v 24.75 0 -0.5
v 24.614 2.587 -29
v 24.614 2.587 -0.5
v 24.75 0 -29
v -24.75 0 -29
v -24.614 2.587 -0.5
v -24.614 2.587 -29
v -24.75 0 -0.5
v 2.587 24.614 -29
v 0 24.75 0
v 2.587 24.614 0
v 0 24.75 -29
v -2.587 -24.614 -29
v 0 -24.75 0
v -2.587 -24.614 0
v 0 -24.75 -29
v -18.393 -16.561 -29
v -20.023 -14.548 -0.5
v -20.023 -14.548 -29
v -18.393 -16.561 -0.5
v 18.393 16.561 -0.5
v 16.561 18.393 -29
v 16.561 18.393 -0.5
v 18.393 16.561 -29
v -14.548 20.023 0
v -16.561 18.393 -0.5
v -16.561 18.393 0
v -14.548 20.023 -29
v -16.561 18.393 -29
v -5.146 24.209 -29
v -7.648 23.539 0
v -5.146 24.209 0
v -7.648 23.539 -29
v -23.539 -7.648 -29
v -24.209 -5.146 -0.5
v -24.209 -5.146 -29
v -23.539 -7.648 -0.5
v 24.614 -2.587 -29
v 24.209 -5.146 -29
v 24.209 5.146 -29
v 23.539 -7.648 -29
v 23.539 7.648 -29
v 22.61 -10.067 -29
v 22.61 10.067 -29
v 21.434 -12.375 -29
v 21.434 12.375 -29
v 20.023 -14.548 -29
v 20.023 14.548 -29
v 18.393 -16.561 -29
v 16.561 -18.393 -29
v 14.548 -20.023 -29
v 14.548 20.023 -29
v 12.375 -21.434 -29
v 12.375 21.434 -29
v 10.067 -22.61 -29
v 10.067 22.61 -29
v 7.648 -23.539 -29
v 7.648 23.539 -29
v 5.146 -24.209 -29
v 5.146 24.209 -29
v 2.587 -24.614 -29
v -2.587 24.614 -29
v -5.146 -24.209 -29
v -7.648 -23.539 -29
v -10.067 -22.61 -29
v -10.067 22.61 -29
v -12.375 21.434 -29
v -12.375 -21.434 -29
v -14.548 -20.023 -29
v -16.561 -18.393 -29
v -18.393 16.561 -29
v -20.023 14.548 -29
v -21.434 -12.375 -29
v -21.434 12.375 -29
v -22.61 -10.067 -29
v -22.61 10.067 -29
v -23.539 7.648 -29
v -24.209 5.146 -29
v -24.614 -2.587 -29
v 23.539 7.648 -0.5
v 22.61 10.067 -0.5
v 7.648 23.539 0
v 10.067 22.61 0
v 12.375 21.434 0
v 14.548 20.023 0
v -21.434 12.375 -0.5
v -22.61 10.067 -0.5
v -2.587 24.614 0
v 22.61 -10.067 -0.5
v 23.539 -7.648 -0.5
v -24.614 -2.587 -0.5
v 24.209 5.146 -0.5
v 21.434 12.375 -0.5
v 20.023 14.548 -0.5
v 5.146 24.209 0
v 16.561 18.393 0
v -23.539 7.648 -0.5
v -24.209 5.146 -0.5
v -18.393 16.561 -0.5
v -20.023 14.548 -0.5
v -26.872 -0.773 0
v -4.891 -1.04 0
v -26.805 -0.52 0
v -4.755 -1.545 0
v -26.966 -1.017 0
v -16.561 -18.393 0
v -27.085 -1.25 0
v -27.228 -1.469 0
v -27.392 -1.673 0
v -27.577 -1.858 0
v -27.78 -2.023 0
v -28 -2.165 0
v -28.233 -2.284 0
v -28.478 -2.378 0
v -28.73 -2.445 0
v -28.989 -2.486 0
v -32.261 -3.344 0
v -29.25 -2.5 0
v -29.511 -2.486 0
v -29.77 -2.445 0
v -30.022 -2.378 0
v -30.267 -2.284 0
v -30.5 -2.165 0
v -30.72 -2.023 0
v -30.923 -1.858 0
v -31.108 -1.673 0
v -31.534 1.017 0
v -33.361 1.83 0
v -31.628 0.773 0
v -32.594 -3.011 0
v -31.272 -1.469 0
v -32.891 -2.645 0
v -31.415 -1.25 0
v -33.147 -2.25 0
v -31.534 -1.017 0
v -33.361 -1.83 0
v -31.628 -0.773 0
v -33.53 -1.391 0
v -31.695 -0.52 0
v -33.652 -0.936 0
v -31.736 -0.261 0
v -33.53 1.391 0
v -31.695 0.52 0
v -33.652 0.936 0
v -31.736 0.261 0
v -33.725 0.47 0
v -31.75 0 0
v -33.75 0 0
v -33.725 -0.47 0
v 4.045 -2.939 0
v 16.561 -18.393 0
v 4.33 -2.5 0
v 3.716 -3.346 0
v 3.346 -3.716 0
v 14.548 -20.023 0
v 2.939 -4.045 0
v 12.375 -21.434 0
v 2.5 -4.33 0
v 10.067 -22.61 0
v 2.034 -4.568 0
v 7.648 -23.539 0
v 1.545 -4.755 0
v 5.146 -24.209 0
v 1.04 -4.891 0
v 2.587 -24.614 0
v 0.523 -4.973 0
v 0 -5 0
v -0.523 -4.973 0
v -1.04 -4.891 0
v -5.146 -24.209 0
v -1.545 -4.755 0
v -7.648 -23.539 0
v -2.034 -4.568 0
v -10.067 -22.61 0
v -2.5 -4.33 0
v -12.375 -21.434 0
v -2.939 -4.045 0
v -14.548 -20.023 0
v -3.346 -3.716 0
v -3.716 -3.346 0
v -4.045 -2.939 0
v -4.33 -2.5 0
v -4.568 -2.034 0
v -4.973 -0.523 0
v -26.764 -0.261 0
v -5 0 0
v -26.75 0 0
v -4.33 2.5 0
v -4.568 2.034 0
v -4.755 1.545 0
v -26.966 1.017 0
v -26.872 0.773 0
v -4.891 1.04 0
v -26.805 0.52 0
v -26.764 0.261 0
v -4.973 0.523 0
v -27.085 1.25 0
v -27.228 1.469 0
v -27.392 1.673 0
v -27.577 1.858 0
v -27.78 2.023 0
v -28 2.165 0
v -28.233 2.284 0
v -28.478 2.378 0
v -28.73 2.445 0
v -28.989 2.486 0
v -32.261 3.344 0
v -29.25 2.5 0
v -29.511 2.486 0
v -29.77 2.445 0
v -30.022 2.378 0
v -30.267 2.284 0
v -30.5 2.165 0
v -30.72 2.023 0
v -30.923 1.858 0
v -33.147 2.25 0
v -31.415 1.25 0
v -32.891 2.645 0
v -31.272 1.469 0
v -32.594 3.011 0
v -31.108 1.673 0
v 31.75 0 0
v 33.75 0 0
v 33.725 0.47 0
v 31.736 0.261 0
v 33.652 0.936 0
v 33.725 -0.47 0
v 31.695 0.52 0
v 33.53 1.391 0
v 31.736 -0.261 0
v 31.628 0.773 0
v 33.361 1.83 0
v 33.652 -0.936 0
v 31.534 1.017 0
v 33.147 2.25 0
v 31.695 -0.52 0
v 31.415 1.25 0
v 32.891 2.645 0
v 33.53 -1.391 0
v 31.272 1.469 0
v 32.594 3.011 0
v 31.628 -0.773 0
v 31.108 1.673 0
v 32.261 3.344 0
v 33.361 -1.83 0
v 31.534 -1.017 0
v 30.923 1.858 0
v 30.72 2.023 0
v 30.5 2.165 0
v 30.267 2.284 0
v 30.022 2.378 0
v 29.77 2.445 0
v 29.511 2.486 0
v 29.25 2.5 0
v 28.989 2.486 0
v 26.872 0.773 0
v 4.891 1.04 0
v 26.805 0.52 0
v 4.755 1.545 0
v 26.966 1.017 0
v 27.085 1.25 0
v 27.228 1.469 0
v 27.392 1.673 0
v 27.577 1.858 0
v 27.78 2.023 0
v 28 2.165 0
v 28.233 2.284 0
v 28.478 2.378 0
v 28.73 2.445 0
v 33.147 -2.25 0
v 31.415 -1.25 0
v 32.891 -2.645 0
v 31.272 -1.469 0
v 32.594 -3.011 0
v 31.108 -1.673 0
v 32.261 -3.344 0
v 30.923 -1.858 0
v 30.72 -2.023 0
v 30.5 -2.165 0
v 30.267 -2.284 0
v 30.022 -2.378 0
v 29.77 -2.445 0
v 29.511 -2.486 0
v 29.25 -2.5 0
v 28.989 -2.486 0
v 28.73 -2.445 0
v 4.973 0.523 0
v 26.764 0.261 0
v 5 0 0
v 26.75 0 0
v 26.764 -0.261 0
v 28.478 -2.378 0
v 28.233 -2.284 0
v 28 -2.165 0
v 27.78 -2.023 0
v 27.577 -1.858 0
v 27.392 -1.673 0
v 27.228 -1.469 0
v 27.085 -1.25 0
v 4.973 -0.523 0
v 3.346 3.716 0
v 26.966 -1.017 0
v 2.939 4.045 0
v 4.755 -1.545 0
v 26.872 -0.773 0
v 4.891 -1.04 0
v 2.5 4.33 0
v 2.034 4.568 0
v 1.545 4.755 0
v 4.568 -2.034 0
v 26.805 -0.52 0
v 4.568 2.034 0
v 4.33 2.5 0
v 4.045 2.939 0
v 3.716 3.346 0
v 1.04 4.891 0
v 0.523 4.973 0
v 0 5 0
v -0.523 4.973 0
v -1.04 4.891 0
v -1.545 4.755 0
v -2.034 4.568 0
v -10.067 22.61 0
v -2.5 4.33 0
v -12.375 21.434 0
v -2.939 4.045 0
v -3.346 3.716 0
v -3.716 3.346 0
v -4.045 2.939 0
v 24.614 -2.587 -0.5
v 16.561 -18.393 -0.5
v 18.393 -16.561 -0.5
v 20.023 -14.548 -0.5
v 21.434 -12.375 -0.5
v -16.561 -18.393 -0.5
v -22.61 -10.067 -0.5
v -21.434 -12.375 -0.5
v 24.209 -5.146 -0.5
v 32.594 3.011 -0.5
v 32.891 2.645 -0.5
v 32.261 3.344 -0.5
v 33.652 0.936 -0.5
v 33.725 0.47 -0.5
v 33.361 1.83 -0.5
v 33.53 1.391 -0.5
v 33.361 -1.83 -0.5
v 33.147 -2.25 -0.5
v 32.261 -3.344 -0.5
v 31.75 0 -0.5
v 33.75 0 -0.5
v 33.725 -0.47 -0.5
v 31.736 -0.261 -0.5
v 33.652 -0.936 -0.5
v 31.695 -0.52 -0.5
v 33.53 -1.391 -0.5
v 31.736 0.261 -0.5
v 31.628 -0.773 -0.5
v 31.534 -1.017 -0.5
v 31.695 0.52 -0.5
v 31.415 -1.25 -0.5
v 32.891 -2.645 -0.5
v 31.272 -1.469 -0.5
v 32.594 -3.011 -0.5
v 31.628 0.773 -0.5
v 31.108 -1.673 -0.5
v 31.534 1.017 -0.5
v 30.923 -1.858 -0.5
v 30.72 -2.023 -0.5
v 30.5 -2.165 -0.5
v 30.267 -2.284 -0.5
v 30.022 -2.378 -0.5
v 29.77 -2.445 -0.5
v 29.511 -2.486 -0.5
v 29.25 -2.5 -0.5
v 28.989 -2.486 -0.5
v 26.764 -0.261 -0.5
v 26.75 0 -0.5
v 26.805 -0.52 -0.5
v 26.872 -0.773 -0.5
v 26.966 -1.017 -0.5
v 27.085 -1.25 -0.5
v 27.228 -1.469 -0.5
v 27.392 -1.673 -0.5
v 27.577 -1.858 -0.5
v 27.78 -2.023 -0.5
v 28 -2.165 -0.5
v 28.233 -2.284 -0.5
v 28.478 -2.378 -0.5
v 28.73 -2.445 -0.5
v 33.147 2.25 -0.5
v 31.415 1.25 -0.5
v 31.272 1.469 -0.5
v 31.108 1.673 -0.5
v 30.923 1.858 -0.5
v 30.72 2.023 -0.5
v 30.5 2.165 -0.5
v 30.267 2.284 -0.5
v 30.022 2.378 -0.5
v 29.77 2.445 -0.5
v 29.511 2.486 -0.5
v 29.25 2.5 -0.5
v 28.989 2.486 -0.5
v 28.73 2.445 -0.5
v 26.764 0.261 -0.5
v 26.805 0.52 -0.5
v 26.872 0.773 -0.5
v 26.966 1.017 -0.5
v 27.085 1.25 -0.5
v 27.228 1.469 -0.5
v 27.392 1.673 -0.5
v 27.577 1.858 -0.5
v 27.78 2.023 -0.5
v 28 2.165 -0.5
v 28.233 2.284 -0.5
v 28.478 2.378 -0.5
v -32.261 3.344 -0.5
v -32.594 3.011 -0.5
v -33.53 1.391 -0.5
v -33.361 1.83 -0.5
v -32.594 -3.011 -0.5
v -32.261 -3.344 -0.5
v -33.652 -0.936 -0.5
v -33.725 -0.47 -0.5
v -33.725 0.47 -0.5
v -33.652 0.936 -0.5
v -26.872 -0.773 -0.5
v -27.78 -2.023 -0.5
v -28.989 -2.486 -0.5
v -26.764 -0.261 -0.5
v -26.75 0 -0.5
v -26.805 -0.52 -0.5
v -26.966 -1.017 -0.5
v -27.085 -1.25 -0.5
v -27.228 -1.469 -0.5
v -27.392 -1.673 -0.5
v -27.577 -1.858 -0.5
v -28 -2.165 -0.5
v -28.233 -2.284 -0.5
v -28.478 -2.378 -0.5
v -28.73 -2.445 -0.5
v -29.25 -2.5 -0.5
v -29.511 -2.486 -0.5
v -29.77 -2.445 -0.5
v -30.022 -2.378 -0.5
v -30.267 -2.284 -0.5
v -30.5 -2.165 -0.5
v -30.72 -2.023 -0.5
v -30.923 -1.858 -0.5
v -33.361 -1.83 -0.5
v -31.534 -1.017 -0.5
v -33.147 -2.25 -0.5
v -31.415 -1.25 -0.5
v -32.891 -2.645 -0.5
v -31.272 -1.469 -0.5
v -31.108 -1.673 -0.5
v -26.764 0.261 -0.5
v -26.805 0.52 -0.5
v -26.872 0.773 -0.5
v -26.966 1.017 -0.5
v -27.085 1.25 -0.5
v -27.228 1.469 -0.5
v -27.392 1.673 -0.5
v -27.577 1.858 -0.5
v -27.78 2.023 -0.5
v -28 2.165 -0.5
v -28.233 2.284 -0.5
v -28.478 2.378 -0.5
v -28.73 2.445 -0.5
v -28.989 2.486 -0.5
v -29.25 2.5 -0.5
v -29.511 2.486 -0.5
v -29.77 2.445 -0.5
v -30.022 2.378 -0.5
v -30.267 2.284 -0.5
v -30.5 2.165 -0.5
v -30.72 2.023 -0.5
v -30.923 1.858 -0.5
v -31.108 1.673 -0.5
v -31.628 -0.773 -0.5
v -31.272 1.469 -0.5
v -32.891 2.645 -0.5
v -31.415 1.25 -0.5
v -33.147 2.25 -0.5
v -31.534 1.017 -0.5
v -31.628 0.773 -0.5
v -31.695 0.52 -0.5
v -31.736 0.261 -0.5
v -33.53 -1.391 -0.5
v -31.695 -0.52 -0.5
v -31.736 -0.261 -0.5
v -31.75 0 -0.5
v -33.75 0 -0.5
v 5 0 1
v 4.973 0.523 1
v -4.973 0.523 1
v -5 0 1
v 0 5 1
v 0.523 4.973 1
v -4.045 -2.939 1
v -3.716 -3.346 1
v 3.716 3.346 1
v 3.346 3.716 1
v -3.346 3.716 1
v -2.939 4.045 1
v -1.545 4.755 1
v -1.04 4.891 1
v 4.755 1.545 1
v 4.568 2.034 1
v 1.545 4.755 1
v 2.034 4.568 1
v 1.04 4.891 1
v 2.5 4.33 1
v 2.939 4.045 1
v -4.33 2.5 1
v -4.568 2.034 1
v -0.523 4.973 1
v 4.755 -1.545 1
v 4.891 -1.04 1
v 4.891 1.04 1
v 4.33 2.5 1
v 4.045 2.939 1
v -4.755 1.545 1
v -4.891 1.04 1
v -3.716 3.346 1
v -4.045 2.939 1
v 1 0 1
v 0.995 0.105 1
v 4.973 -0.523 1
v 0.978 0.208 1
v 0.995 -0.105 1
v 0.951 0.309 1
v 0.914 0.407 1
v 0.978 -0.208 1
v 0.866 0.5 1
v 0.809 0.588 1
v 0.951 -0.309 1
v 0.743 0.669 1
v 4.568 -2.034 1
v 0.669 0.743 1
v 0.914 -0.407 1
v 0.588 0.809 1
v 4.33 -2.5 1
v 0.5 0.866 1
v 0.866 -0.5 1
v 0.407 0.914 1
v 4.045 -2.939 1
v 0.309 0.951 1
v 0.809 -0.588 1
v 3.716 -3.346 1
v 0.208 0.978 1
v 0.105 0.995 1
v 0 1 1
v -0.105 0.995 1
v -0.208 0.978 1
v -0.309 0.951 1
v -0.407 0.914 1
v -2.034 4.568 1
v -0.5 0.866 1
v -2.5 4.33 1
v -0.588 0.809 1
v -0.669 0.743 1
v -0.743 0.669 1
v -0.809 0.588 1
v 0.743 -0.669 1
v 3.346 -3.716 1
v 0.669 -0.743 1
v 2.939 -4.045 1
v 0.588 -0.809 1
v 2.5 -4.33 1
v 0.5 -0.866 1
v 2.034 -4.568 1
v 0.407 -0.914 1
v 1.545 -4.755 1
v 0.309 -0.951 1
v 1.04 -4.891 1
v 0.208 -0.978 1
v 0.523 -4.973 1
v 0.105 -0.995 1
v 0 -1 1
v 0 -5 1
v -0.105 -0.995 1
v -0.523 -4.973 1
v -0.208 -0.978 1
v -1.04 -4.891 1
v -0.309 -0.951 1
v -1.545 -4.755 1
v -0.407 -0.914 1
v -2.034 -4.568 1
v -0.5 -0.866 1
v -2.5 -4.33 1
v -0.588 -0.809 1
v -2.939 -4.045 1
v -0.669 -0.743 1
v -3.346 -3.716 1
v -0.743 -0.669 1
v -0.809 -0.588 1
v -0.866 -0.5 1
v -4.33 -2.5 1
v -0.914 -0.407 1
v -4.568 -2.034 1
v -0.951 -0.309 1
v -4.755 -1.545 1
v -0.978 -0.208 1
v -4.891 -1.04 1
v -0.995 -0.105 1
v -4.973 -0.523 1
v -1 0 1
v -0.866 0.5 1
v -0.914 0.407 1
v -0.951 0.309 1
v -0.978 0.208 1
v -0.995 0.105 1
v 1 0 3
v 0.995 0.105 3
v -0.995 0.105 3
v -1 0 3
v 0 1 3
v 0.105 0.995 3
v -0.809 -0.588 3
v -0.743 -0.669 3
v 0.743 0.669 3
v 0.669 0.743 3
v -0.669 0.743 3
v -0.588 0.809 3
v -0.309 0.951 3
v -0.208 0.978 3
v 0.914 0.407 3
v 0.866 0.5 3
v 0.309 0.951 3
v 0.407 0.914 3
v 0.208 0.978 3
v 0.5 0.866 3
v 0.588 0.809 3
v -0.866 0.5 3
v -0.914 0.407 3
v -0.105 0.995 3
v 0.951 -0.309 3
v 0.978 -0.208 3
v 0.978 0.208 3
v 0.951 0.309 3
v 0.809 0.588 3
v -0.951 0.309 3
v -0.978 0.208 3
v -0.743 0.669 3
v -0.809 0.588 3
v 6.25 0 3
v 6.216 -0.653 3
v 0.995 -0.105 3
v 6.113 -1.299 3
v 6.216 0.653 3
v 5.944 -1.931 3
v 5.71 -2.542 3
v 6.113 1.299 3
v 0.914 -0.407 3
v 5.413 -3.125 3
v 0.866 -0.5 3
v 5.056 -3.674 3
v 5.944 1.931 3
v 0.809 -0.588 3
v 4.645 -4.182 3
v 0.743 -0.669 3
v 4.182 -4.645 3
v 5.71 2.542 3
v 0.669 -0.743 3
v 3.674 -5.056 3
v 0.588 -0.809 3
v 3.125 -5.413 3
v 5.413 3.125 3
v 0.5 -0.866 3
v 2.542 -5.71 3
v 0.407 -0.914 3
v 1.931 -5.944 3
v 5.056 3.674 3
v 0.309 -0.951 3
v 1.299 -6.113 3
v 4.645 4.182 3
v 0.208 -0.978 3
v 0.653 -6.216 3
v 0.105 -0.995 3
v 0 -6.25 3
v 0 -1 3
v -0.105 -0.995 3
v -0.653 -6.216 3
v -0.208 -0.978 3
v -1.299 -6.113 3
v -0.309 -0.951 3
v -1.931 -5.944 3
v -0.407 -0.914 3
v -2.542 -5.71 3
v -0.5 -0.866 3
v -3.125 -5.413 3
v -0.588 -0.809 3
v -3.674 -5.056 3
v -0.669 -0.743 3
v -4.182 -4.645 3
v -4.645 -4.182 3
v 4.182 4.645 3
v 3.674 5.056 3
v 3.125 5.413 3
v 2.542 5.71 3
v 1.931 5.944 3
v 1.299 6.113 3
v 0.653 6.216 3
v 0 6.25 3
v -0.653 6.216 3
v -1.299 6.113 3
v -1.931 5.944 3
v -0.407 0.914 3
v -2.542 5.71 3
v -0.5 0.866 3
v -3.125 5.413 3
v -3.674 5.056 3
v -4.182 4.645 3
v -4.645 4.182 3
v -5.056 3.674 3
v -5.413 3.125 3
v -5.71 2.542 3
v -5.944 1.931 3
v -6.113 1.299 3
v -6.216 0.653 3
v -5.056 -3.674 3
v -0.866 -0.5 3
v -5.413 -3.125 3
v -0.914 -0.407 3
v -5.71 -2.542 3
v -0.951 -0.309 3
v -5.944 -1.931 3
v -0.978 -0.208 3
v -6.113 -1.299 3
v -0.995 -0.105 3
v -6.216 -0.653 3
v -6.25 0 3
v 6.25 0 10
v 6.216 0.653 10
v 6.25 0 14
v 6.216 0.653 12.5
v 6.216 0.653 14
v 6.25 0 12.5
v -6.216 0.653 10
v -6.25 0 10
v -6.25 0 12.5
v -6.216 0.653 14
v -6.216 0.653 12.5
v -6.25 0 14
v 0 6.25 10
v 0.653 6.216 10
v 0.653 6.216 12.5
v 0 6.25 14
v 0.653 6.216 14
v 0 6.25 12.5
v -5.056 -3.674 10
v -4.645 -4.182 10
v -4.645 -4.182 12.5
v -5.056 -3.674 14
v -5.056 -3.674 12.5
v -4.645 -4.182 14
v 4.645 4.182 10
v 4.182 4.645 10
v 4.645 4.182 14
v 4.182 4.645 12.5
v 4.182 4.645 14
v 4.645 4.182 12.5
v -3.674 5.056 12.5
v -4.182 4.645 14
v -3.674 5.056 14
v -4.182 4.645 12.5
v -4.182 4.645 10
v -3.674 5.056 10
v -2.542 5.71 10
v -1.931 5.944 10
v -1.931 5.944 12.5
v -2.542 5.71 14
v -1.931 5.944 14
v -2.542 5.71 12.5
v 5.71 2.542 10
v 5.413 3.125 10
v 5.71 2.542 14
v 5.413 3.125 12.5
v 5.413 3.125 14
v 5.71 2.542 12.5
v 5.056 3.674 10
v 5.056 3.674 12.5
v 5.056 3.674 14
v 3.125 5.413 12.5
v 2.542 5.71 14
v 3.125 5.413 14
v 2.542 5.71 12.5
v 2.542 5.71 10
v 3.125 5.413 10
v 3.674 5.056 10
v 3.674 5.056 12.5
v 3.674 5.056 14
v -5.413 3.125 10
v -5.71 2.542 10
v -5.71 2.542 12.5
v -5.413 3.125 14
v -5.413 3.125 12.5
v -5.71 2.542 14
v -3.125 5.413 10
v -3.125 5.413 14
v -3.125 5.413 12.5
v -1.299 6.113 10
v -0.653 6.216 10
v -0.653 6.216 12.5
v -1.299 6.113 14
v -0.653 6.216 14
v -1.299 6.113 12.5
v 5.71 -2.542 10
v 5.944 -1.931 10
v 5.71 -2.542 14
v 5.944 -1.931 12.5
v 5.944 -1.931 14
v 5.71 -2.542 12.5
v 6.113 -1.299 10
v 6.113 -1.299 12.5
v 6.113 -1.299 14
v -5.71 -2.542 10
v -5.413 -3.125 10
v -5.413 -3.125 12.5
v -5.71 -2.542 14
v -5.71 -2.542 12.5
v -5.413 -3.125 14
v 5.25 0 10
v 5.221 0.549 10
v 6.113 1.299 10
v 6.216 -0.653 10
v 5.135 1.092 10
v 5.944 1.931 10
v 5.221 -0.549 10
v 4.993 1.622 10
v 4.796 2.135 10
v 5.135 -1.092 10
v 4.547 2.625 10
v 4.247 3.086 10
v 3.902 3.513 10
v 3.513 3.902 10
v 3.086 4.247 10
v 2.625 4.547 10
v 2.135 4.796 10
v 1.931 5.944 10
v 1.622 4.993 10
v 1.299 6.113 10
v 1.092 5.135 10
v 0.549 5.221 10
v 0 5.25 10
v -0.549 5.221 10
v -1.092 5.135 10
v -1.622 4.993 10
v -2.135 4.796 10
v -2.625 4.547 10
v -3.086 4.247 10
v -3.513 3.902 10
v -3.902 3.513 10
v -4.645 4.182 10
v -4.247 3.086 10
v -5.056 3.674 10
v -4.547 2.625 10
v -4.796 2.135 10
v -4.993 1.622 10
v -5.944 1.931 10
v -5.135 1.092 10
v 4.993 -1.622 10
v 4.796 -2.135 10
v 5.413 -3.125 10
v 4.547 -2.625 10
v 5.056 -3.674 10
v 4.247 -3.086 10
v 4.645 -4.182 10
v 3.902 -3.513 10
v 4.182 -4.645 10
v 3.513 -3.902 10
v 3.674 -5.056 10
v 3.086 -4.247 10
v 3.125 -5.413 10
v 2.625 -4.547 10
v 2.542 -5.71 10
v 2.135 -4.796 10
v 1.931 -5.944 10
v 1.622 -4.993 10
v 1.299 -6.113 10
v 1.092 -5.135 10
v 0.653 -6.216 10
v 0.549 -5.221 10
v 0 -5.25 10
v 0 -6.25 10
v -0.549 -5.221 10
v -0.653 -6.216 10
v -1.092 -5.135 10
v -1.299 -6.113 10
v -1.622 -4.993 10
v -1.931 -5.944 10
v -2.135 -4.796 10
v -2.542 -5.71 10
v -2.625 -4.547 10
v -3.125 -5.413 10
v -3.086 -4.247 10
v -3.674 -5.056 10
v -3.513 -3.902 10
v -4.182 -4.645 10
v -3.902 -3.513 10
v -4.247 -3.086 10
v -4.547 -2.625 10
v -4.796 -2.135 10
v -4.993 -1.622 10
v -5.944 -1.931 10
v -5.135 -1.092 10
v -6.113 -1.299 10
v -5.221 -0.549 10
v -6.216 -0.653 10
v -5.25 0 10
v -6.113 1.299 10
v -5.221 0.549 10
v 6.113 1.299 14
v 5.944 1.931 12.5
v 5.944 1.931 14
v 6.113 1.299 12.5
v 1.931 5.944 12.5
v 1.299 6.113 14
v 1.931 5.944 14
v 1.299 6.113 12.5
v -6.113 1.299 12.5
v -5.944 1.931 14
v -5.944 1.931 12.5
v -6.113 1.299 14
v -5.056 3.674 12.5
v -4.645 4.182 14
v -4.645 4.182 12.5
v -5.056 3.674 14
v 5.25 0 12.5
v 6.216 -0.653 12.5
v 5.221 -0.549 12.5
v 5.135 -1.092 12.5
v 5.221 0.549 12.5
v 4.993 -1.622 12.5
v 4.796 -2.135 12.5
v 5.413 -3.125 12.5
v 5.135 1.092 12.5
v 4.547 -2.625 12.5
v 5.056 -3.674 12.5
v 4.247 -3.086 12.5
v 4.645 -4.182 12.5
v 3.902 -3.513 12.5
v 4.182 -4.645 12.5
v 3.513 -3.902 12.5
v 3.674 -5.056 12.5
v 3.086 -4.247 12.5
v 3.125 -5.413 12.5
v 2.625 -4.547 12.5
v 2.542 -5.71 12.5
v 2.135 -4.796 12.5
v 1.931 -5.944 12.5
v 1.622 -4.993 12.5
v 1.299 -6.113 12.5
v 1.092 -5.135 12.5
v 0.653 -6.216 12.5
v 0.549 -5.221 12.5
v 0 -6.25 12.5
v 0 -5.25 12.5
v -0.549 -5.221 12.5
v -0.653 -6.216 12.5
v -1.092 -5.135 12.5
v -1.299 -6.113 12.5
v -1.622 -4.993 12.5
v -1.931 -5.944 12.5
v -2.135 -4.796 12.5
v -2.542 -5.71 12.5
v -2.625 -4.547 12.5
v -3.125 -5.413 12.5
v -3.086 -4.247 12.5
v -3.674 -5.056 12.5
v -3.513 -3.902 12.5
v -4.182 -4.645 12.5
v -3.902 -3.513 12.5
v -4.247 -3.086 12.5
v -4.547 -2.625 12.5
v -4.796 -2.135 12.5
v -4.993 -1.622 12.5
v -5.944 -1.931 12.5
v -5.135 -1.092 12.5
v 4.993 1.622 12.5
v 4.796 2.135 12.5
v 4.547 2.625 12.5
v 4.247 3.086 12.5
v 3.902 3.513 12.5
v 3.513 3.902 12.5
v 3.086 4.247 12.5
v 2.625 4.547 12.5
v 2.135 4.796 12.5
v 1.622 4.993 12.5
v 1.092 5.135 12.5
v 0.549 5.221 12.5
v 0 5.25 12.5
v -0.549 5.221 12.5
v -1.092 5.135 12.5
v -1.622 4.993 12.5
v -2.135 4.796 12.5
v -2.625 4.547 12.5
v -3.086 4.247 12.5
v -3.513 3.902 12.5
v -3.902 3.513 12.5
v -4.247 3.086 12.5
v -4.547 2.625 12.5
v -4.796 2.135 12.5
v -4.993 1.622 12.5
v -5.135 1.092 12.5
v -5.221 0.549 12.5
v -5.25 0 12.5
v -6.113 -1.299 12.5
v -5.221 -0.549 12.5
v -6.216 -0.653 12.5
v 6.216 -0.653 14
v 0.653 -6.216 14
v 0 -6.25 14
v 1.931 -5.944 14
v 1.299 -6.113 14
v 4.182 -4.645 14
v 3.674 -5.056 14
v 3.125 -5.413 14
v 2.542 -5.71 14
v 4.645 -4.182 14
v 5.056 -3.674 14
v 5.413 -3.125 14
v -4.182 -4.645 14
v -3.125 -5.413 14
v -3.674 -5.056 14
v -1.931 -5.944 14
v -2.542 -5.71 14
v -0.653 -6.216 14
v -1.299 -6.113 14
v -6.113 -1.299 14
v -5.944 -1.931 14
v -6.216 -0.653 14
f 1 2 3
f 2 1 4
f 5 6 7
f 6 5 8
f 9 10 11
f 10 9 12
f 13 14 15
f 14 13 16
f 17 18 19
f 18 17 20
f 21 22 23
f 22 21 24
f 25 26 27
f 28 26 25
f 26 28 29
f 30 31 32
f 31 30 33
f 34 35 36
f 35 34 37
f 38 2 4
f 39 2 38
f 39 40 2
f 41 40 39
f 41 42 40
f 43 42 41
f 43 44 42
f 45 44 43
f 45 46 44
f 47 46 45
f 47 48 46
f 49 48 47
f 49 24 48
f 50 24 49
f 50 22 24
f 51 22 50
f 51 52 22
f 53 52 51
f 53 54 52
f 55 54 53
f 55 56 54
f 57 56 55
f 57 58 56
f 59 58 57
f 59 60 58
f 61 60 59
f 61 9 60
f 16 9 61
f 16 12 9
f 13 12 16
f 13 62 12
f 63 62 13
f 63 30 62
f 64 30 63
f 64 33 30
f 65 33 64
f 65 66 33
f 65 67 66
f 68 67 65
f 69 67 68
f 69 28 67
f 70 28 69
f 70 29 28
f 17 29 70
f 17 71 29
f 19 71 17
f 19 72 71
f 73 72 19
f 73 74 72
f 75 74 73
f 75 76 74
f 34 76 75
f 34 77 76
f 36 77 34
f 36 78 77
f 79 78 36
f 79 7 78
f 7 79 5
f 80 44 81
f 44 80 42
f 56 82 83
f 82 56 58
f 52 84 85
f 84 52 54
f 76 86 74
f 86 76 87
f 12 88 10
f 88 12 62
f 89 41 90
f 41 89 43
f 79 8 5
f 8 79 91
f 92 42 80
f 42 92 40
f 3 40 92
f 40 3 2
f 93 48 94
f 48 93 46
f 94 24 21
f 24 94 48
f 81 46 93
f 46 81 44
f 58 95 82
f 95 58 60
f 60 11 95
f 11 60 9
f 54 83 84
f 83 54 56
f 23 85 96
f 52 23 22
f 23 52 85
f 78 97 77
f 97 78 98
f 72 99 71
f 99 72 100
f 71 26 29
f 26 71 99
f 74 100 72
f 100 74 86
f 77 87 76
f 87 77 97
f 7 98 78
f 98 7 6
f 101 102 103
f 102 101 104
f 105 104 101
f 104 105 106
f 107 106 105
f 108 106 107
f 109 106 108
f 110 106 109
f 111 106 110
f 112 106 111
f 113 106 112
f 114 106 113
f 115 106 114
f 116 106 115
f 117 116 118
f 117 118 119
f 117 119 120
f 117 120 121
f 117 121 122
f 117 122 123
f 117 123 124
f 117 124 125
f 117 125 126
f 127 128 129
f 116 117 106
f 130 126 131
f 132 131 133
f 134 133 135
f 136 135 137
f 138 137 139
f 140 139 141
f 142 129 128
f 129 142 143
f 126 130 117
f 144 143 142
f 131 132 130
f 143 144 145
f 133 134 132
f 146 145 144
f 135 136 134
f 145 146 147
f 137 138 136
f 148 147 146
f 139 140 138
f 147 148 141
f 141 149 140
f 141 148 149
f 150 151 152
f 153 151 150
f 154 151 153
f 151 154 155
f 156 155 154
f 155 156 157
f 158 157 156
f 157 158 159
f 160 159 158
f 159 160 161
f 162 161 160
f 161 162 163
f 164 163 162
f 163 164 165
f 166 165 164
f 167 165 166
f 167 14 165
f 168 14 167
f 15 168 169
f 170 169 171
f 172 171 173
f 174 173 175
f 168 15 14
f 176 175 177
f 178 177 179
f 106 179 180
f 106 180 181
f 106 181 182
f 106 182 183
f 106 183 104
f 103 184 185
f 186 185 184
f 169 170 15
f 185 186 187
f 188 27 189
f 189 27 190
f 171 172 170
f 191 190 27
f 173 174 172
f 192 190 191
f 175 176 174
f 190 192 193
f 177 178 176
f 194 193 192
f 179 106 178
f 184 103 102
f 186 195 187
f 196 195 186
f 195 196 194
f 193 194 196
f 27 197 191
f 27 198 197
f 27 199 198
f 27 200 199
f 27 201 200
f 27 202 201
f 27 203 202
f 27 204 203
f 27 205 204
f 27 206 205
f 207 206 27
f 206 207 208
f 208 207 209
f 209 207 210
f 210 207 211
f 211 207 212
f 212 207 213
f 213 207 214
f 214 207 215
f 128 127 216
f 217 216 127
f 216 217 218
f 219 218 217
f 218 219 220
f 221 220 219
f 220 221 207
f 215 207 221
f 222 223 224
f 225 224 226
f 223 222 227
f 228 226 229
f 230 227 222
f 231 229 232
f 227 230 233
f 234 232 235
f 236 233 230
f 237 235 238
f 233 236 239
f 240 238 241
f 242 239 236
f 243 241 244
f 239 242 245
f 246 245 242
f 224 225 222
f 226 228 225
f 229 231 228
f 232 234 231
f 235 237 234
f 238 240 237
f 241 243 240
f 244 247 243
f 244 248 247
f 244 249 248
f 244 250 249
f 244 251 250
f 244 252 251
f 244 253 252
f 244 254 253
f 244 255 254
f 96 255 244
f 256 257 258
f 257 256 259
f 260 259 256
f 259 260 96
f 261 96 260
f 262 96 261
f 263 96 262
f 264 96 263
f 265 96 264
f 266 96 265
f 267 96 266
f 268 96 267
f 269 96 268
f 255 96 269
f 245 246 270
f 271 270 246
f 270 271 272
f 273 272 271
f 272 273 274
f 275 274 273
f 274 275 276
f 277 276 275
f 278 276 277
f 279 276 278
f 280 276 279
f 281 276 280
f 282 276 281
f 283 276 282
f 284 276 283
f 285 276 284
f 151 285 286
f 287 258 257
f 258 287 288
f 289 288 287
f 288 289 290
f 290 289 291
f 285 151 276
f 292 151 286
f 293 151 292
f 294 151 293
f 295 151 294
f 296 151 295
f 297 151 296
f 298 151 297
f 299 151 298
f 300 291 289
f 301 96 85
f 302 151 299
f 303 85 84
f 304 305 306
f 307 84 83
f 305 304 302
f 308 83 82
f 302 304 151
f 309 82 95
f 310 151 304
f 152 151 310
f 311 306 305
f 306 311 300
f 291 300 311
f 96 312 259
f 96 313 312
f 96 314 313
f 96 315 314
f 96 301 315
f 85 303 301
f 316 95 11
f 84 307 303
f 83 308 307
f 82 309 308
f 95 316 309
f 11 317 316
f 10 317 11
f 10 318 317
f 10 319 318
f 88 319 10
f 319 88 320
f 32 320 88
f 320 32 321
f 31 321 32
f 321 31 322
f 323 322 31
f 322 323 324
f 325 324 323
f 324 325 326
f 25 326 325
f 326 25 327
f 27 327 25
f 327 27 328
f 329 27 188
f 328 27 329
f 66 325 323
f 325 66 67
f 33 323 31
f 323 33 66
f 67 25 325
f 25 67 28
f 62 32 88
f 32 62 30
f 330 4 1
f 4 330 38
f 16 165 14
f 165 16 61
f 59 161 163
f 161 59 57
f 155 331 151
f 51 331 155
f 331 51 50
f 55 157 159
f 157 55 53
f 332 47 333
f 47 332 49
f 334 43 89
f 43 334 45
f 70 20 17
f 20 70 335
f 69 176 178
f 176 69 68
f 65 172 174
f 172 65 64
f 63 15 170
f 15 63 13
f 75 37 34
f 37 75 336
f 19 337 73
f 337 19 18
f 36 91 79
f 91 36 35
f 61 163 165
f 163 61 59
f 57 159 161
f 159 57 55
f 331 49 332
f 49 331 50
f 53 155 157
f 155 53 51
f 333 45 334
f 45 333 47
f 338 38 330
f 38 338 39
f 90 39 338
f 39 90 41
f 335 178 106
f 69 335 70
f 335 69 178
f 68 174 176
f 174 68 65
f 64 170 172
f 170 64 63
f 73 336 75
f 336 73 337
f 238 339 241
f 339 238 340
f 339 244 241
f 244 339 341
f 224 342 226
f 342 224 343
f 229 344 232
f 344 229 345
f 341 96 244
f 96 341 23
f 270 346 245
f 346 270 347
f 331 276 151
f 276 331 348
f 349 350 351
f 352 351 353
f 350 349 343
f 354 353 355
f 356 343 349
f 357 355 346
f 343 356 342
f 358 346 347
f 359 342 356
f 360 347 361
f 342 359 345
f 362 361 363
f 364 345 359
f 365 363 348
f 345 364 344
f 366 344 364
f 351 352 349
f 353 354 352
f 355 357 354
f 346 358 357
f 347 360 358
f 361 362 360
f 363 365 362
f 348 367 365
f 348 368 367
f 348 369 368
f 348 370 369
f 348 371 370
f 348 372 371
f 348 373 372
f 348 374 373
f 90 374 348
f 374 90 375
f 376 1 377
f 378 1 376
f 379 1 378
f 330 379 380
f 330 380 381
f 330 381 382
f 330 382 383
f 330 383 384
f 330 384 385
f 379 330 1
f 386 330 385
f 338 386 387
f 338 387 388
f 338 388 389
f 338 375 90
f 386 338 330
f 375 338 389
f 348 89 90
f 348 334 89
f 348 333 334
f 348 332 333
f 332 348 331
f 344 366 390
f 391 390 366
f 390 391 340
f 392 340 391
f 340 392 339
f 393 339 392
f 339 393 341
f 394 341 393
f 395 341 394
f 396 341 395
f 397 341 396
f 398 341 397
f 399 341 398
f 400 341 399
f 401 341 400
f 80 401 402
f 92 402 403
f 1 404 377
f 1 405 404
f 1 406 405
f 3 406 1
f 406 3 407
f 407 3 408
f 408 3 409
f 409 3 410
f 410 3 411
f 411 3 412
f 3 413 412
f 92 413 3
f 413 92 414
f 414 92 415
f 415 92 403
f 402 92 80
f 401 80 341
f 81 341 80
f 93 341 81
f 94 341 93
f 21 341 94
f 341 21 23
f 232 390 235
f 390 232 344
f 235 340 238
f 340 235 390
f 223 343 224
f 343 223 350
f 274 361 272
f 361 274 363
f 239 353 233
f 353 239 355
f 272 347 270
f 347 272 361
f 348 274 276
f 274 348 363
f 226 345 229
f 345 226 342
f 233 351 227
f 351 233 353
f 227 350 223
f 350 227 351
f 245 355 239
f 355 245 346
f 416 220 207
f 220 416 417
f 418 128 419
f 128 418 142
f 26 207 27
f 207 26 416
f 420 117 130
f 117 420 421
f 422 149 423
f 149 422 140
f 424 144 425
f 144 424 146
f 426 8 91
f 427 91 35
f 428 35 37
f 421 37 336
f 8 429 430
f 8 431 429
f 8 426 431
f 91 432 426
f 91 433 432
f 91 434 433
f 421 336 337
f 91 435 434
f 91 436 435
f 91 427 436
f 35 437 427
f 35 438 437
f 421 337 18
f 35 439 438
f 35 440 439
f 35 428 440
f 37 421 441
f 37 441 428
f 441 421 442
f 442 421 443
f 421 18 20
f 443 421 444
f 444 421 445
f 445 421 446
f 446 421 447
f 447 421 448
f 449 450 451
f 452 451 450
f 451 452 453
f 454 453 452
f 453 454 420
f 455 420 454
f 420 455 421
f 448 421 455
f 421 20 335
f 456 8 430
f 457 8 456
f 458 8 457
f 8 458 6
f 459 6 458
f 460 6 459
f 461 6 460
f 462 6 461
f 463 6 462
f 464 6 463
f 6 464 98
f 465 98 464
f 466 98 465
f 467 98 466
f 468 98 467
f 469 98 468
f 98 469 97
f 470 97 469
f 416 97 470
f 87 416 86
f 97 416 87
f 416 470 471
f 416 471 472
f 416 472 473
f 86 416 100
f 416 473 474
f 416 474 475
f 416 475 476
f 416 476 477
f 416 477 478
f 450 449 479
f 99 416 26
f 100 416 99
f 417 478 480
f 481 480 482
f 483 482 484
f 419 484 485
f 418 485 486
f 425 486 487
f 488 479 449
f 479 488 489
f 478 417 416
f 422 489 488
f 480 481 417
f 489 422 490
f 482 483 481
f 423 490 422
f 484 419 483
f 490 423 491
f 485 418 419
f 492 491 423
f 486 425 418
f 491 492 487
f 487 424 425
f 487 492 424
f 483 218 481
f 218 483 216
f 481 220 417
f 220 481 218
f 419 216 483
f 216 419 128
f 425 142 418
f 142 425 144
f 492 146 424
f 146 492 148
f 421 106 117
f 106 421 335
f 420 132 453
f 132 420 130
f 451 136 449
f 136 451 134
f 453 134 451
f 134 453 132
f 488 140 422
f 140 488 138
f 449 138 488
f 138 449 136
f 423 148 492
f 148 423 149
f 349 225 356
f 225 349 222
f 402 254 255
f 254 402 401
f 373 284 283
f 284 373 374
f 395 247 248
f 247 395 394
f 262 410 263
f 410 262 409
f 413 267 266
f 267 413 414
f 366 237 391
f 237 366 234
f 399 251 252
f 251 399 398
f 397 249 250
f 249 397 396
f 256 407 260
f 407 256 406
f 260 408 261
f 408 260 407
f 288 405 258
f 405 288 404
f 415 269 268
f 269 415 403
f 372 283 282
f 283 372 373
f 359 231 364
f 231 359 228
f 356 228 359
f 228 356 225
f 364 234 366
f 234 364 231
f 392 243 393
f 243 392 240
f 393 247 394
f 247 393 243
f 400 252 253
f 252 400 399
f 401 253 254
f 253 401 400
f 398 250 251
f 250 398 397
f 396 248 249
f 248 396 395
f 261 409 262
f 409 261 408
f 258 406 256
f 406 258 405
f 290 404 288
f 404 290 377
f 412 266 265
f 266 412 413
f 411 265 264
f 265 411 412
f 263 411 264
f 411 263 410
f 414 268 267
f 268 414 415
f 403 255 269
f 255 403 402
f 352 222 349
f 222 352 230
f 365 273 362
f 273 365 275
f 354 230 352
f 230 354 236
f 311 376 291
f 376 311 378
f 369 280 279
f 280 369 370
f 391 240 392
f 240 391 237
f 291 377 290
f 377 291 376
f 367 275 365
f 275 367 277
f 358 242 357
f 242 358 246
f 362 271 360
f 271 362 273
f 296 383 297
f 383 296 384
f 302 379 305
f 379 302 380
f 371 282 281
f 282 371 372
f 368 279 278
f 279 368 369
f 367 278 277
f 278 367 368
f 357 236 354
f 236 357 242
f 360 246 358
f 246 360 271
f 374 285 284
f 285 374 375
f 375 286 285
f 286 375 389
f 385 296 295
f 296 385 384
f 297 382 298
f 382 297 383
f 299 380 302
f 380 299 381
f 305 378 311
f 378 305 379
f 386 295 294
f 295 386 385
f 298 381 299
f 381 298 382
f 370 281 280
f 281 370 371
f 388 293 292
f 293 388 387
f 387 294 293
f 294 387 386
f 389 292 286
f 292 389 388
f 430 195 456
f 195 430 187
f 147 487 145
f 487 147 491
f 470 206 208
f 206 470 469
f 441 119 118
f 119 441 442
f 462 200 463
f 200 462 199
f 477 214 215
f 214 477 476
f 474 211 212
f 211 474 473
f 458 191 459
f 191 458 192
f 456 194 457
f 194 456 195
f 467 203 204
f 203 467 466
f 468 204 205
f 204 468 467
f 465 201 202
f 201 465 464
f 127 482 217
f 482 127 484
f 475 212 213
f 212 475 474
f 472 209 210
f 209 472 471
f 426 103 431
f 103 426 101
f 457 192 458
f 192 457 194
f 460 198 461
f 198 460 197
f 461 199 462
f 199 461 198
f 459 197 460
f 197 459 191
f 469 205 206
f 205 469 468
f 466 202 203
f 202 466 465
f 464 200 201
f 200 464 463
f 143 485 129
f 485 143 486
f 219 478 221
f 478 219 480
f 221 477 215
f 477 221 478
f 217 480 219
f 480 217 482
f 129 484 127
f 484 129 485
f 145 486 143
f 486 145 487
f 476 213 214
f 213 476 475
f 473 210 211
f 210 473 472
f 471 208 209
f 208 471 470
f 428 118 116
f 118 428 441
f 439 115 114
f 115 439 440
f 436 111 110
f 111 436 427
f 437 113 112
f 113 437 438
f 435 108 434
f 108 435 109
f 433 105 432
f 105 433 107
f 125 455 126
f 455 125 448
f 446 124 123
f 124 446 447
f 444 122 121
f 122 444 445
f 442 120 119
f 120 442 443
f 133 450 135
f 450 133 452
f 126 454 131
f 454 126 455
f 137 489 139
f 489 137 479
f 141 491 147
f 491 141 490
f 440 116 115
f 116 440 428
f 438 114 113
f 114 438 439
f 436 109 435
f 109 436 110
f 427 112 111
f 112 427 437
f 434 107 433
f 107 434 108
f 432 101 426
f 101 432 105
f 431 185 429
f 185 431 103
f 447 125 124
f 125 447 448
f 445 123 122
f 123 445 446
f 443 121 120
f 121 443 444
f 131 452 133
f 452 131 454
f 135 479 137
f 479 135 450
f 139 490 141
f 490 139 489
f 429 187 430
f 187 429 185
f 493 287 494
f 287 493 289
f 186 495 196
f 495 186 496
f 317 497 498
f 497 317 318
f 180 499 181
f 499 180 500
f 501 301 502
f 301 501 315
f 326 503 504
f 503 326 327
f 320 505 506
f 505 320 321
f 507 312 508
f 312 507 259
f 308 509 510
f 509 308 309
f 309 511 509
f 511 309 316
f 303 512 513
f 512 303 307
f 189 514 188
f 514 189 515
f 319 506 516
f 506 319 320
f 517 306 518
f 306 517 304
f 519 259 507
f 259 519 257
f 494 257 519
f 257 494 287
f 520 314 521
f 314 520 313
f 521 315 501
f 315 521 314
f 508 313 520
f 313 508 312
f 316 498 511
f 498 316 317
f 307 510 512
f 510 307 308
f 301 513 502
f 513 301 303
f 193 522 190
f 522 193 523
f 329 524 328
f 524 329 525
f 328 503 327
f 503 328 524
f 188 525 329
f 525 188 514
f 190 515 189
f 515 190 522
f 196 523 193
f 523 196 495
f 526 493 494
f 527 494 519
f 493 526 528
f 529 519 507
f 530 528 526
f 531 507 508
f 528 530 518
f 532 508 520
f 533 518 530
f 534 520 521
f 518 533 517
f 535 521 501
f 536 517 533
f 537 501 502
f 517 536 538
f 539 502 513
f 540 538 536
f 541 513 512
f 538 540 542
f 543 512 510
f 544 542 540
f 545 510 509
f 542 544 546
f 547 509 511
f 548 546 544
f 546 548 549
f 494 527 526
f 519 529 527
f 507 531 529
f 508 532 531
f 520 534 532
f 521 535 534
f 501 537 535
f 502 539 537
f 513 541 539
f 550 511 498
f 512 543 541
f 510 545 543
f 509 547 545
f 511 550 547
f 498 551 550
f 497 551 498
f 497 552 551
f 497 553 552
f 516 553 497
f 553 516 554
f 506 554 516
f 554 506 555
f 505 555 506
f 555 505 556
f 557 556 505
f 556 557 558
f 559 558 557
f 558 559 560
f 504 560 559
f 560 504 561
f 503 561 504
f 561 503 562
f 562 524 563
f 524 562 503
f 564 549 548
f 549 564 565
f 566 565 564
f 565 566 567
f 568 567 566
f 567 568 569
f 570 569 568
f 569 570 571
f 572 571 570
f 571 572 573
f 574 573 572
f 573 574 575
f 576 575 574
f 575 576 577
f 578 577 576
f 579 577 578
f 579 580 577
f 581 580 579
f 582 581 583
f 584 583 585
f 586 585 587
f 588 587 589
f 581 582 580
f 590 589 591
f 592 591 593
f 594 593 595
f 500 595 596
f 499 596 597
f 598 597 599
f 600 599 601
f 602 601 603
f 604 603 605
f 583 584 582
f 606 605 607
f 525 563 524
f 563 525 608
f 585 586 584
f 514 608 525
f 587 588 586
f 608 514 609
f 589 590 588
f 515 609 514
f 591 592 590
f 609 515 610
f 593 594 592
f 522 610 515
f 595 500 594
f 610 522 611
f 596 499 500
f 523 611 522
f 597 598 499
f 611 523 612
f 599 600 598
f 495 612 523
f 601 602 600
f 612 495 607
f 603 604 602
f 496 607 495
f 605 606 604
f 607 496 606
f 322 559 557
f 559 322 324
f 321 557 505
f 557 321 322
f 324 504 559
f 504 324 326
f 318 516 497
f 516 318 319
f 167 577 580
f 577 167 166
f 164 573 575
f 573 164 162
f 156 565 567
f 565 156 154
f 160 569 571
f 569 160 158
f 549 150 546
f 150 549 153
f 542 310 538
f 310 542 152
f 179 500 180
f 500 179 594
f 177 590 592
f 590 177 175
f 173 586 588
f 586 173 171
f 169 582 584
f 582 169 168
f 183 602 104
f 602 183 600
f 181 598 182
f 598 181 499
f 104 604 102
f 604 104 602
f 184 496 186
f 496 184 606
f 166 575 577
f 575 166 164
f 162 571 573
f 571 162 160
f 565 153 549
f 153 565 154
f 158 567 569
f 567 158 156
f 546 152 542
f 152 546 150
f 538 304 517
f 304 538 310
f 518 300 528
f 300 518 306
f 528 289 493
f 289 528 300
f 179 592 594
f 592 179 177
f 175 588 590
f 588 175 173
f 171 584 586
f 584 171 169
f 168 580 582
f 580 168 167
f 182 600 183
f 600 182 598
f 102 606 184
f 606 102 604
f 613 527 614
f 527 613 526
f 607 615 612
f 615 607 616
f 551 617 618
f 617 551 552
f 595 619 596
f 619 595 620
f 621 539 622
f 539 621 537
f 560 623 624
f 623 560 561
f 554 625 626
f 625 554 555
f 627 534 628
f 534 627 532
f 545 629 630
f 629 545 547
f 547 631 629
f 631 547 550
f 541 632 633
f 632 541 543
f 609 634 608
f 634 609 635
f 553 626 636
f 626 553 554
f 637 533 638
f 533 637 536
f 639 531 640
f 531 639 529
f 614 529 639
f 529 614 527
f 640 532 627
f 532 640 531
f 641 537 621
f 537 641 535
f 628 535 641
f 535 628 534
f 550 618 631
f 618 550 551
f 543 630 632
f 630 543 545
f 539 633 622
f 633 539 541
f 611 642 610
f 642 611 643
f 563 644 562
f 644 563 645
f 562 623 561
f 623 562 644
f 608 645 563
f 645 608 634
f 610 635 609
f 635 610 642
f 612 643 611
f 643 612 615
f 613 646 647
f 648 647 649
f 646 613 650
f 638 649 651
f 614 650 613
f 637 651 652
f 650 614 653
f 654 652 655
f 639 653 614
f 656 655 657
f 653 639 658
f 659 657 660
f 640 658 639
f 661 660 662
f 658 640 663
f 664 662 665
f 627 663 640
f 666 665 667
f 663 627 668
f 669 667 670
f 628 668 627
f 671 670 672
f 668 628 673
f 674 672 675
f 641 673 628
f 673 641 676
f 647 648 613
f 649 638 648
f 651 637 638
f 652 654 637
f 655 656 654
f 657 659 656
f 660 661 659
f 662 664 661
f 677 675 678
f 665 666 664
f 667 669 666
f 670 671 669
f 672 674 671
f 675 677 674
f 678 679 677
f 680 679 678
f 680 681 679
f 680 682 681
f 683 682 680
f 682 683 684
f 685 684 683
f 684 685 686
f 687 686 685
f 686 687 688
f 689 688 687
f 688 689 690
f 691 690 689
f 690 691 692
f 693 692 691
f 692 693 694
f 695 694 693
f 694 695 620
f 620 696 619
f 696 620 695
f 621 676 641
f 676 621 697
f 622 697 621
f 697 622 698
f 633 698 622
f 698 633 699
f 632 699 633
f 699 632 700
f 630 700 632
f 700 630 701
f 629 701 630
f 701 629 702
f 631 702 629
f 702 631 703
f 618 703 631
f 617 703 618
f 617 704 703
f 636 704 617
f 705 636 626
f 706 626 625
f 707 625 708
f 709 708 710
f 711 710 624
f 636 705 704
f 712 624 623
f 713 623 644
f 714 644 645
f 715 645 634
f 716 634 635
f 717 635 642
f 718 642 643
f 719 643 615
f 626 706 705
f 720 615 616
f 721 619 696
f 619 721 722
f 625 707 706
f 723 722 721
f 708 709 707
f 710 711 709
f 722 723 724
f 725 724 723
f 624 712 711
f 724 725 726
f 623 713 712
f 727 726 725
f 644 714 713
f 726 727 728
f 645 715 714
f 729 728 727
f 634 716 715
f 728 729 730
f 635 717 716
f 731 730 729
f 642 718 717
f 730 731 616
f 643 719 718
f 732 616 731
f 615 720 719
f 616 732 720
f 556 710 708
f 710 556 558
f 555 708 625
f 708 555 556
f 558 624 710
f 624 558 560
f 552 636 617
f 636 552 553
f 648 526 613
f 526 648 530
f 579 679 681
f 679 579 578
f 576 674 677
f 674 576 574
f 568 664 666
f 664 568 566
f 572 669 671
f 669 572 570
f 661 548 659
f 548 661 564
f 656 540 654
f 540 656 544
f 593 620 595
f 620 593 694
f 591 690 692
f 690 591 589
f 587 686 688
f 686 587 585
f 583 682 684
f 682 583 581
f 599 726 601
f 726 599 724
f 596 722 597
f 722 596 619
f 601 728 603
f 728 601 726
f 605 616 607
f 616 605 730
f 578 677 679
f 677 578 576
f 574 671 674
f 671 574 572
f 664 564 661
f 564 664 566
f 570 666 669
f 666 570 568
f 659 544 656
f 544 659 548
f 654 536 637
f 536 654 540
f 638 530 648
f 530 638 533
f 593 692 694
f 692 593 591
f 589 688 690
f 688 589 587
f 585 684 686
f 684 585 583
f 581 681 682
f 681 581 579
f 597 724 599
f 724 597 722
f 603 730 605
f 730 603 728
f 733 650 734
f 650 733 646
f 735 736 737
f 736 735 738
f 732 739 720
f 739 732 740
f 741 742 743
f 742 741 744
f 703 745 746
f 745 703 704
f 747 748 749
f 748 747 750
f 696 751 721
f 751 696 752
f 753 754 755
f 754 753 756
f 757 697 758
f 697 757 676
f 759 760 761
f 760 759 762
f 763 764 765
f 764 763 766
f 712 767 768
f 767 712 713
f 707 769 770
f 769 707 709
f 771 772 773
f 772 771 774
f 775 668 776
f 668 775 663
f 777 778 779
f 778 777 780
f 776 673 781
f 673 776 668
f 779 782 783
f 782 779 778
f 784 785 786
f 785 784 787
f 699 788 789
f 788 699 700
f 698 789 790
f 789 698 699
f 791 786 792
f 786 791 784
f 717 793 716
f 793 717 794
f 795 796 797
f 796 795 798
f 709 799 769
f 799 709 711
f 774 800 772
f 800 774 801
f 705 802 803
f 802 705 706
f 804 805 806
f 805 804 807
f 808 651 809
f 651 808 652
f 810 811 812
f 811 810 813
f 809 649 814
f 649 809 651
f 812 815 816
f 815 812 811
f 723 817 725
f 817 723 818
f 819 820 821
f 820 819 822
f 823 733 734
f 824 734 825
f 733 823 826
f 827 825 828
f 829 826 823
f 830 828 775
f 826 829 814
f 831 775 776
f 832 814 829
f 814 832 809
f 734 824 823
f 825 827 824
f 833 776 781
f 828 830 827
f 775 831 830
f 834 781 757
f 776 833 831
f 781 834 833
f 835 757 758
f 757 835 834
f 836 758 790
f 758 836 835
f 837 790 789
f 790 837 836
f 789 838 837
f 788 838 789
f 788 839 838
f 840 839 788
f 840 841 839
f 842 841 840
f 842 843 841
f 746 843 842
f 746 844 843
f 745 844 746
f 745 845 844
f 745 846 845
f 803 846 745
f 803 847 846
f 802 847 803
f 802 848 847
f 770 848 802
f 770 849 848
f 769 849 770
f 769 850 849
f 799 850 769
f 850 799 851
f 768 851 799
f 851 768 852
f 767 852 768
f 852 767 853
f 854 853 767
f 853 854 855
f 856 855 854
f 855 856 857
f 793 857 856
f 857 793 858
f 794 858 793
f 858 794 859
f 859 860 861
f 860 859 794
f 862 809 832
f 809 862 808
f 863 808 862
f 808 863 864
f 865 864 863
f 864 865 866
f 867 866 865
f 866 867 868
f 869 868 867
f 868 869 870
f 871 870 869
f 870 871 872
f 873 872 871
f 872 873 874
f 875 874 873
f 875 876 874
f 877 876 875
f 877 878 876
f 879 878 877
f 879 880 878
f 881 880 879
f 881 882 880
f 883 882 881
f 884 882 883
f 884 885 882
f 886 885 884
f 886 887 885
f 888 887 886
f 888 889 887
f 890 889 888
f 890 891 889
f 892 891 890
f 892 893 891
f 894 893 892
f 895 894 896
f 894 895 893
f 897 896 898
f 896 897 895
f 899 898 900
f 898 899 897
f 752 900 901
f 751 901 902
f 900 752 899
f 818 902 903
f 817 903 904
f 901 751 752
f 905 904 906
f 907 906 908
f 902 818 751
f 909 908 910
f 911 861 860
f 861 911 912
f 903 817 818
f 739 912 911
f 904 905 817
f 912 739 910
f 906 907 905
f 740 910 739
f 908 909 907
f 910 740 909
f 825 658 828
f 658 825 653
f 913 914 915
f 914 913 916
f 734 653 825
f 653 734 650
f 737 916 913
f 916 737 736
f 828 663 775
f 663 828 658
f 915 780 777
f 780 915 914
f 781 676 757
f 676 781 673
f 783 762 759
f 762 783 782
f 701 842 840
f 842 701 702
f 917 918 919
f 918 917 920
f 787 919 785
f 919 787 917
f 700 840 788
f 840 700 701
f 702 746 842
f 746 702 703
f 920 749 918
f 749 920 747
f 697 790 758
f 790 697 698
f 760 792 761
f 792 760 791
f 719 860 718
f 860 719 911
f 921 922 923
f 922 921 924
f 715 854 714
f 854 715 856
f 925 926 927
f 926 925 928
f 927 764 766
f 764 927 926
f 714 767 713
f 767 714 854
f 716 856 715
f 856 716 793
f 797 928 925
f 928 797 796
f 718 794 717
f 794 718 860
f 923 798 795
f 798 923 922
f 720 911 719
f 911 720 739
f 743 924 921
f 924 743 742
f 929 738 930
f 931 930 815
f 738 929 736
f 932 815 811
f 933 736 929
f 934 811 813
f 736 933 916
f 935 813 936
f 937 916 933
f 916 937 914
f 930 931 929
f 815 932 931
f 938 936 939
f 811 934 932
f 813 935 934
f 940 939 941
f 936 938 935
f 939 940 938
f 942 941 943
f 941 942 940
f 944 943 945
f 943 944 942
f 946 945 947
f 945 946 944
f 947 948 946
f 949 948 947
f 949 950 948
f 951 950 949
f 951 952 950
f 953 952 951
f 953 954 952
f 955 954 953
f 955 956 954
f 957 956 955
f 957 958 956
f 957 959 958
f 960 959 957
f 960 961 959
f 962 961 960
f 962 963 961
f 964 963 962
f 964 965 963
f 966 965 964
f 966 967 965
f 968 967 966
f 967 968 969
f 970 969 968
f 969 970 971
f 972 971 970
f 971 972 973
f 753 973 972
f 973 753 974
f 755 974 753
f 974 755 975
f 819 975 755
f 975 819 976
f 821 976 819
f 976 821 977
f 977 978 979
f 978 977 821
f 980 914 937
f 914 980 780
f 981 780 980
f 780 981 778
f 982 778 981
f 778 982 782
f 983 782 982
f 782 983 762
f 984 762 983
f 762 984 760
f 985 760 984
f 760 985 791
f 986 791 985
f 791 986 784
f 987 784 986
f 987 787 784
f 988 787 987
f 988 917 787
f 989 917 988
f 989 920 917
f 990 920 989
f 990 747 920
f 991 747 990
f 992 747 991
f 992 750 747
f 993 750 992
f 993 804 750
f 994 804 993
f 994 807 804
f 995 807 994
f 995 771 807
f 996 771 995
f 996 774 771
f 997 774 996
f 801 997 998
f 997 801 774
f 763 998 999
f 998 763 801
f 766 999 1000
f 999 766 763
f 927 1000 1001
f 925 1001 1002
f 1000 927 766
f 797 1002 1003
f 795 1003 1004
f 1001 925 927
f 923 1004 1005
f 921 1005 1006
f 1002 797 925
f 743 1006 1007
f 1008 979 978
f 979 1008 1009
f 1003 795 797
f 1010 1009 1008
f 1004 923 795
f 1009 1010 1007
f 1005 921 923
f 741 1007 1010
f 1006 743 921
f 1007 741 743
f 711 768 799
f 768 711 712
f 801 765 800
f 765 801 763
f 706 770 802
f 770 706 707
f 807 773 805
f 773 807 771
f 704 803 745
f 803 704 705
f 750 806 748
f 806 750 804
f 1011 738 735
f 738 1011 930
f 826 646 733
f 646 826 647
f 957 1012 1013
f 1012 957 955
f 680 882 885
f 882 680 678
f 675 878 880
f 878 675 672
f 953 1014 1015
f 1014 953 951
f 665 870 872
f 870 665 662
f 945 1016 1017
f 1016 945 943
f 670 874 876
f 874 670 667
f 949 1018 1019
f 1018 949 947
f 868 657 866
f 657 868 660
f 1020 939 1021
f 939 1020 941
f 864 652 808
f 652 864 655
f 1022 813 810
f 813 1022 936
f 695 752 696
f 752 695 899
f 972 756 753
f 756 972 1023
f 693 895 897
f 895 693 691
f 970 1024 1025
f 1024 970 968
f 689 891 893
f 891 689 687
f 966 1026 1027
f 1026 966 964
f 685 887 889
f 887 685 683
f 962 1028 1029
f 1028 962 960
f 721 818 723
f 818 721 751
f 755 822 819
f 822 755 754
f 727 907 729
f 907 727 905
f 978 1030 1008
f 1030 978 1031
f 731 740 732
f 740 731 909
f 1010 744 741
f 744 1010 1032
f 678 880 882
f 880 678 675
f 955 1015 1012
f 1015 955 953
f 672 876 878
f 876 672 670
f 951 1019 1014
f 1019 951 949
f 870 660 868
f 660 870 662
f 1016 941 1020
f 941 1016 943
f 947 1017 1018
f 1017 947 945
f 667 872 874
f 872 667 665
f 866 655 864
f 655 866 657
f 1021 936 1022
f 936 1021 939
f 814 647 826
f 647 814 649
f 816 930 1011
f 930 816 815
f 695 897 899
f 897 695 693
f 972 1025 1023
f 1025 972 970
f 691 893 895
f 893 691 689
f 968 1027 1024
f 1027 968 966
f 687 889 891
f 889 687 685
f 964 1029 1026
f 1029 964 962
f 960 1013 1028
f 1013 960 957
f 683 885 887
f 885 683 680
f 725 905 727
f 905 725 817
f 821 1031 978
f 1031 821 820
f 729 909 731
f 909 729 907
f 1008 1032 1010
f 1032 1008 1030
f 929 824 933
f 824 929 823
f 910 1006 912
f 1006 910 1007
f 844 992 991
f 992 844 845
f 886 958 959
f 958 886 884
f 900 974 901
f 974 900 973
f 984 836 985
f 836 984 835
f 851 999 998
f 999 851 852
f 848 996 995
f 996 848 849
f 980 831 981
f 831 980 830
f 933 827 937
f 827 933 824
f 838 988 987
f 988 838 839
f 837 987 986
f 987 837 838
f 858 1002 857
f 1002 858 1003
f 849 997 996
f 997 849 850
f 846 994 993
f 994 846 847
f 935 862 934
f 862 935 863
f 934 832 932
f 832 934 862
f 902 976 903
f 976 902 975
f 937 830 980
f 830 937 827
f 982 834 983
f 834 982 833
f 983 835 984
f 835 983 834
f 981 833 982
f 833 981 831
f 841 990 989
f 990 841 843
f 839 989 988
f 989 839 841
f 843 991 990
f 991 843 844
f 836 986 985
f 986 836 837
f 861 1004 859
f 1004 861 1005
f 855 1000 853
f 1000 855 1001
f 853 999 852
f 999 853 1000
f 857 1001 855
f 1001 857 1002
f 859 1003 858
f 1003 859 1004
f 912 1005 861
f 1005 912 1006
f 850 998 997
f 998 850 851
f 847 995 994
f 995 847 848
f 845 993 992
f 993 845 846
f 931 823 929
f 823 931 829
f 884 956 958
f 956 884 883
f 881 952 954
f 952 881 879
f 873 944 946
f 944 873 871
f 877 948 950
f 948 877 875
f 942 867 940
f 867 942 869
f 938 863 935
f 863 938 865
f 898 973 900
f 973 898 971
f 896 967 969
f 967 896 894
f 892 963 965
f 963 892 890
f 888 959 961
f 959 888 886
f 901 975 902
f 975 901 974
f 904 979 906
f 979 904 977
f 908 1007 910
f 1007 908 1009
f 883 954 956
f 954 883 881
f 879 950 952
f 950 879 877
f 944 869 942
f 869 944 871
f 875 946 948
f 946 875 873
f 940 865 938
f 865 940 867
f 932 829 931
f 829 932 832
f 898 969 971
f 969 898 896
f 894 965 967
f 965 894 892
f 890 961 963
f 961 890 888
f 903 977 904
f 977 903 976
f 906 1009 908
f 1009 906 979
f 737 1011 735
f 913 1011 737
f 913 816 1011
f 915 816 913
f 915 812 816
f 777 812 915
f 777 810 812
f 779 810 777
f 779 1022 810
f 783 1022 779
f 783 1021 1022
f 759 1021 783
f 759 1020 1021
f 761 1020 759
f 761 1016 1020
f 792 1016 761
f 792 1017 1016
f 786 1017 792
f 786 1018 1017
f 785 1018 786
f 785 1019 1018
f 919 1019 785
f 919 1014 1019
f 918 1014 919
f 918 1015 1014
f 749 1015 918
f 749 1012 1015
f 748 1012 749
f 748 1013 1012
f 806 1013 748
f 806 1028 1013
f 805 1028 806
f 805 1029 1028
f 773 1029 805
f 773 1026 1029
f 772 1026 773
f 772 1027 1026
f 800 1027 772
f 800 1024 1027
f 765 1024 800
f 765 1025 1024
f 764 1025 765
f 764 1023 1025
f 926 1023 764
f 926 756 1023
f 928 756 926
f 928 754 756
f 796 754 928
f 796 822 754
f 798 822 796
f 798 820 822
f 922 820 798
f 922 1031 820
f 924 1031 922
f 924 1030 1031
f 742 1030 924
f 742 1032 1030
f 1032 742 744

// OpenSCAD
module motor_PM49M(){
difference(){
    union(){
        translate([0, 0, -29/2]) cylinder(h=29, r=49.5/2, center=true, $fn=60);
        hull(){
            translate([(49.5+5+4)/2, 0, -0.5/2]) cylinder(h=0.5, r=(5+4)/2, center=true, $fn=60);
            translate([0, 0, -0.5/2]) cylinder(h=0.5, r=49.5/2, center=true, $fn=60);
        }
        hull(){
            translate([0, 0, -0.5/2]) cylinder(h=0.5, r=49.5/2, center=true, $fn=60);
            translate([-(49.5+5+4)/2, 0, -0.5/2]) cylinder(h=0.5, r=(5+4)/2, center=true, $fn=60);
        }
    }
    translate([(49.5+5+4)/2, 0, -0.5/2]) cylinder(h=0.5, r=5/2, center=true, $fn=60);
    translate([-(49.5+5+4)/2, 0, -0.5/2]) cylinder(h=0.5, r=5/2, center=true, $fn=60);
}

translate([0, 0, 1/2]) cylinder(h=1, r=10/2, center=true, $fn=60); 
translate([0, 0, 3/2]) cylinder(h=3, r=2/2, center=true, $fn=60); 
}

module gear(){
    translate([0, 0, 11/2+3]) difference(){
        cylinder(h=11, r=12.5/2, center=true, $fn=60); 
        translate([0, 0, 11/2-2.5/2-1.5]) difference(){
            cylinder(h=2.5, r=12.5/2, center=true, $fn=60); 
            cylinder(h=2.5, r=(12.5-2)/2, center=true, $fn=60); 
        }
    }
}

motor_PM49M();
color("fuchsia") gear();
